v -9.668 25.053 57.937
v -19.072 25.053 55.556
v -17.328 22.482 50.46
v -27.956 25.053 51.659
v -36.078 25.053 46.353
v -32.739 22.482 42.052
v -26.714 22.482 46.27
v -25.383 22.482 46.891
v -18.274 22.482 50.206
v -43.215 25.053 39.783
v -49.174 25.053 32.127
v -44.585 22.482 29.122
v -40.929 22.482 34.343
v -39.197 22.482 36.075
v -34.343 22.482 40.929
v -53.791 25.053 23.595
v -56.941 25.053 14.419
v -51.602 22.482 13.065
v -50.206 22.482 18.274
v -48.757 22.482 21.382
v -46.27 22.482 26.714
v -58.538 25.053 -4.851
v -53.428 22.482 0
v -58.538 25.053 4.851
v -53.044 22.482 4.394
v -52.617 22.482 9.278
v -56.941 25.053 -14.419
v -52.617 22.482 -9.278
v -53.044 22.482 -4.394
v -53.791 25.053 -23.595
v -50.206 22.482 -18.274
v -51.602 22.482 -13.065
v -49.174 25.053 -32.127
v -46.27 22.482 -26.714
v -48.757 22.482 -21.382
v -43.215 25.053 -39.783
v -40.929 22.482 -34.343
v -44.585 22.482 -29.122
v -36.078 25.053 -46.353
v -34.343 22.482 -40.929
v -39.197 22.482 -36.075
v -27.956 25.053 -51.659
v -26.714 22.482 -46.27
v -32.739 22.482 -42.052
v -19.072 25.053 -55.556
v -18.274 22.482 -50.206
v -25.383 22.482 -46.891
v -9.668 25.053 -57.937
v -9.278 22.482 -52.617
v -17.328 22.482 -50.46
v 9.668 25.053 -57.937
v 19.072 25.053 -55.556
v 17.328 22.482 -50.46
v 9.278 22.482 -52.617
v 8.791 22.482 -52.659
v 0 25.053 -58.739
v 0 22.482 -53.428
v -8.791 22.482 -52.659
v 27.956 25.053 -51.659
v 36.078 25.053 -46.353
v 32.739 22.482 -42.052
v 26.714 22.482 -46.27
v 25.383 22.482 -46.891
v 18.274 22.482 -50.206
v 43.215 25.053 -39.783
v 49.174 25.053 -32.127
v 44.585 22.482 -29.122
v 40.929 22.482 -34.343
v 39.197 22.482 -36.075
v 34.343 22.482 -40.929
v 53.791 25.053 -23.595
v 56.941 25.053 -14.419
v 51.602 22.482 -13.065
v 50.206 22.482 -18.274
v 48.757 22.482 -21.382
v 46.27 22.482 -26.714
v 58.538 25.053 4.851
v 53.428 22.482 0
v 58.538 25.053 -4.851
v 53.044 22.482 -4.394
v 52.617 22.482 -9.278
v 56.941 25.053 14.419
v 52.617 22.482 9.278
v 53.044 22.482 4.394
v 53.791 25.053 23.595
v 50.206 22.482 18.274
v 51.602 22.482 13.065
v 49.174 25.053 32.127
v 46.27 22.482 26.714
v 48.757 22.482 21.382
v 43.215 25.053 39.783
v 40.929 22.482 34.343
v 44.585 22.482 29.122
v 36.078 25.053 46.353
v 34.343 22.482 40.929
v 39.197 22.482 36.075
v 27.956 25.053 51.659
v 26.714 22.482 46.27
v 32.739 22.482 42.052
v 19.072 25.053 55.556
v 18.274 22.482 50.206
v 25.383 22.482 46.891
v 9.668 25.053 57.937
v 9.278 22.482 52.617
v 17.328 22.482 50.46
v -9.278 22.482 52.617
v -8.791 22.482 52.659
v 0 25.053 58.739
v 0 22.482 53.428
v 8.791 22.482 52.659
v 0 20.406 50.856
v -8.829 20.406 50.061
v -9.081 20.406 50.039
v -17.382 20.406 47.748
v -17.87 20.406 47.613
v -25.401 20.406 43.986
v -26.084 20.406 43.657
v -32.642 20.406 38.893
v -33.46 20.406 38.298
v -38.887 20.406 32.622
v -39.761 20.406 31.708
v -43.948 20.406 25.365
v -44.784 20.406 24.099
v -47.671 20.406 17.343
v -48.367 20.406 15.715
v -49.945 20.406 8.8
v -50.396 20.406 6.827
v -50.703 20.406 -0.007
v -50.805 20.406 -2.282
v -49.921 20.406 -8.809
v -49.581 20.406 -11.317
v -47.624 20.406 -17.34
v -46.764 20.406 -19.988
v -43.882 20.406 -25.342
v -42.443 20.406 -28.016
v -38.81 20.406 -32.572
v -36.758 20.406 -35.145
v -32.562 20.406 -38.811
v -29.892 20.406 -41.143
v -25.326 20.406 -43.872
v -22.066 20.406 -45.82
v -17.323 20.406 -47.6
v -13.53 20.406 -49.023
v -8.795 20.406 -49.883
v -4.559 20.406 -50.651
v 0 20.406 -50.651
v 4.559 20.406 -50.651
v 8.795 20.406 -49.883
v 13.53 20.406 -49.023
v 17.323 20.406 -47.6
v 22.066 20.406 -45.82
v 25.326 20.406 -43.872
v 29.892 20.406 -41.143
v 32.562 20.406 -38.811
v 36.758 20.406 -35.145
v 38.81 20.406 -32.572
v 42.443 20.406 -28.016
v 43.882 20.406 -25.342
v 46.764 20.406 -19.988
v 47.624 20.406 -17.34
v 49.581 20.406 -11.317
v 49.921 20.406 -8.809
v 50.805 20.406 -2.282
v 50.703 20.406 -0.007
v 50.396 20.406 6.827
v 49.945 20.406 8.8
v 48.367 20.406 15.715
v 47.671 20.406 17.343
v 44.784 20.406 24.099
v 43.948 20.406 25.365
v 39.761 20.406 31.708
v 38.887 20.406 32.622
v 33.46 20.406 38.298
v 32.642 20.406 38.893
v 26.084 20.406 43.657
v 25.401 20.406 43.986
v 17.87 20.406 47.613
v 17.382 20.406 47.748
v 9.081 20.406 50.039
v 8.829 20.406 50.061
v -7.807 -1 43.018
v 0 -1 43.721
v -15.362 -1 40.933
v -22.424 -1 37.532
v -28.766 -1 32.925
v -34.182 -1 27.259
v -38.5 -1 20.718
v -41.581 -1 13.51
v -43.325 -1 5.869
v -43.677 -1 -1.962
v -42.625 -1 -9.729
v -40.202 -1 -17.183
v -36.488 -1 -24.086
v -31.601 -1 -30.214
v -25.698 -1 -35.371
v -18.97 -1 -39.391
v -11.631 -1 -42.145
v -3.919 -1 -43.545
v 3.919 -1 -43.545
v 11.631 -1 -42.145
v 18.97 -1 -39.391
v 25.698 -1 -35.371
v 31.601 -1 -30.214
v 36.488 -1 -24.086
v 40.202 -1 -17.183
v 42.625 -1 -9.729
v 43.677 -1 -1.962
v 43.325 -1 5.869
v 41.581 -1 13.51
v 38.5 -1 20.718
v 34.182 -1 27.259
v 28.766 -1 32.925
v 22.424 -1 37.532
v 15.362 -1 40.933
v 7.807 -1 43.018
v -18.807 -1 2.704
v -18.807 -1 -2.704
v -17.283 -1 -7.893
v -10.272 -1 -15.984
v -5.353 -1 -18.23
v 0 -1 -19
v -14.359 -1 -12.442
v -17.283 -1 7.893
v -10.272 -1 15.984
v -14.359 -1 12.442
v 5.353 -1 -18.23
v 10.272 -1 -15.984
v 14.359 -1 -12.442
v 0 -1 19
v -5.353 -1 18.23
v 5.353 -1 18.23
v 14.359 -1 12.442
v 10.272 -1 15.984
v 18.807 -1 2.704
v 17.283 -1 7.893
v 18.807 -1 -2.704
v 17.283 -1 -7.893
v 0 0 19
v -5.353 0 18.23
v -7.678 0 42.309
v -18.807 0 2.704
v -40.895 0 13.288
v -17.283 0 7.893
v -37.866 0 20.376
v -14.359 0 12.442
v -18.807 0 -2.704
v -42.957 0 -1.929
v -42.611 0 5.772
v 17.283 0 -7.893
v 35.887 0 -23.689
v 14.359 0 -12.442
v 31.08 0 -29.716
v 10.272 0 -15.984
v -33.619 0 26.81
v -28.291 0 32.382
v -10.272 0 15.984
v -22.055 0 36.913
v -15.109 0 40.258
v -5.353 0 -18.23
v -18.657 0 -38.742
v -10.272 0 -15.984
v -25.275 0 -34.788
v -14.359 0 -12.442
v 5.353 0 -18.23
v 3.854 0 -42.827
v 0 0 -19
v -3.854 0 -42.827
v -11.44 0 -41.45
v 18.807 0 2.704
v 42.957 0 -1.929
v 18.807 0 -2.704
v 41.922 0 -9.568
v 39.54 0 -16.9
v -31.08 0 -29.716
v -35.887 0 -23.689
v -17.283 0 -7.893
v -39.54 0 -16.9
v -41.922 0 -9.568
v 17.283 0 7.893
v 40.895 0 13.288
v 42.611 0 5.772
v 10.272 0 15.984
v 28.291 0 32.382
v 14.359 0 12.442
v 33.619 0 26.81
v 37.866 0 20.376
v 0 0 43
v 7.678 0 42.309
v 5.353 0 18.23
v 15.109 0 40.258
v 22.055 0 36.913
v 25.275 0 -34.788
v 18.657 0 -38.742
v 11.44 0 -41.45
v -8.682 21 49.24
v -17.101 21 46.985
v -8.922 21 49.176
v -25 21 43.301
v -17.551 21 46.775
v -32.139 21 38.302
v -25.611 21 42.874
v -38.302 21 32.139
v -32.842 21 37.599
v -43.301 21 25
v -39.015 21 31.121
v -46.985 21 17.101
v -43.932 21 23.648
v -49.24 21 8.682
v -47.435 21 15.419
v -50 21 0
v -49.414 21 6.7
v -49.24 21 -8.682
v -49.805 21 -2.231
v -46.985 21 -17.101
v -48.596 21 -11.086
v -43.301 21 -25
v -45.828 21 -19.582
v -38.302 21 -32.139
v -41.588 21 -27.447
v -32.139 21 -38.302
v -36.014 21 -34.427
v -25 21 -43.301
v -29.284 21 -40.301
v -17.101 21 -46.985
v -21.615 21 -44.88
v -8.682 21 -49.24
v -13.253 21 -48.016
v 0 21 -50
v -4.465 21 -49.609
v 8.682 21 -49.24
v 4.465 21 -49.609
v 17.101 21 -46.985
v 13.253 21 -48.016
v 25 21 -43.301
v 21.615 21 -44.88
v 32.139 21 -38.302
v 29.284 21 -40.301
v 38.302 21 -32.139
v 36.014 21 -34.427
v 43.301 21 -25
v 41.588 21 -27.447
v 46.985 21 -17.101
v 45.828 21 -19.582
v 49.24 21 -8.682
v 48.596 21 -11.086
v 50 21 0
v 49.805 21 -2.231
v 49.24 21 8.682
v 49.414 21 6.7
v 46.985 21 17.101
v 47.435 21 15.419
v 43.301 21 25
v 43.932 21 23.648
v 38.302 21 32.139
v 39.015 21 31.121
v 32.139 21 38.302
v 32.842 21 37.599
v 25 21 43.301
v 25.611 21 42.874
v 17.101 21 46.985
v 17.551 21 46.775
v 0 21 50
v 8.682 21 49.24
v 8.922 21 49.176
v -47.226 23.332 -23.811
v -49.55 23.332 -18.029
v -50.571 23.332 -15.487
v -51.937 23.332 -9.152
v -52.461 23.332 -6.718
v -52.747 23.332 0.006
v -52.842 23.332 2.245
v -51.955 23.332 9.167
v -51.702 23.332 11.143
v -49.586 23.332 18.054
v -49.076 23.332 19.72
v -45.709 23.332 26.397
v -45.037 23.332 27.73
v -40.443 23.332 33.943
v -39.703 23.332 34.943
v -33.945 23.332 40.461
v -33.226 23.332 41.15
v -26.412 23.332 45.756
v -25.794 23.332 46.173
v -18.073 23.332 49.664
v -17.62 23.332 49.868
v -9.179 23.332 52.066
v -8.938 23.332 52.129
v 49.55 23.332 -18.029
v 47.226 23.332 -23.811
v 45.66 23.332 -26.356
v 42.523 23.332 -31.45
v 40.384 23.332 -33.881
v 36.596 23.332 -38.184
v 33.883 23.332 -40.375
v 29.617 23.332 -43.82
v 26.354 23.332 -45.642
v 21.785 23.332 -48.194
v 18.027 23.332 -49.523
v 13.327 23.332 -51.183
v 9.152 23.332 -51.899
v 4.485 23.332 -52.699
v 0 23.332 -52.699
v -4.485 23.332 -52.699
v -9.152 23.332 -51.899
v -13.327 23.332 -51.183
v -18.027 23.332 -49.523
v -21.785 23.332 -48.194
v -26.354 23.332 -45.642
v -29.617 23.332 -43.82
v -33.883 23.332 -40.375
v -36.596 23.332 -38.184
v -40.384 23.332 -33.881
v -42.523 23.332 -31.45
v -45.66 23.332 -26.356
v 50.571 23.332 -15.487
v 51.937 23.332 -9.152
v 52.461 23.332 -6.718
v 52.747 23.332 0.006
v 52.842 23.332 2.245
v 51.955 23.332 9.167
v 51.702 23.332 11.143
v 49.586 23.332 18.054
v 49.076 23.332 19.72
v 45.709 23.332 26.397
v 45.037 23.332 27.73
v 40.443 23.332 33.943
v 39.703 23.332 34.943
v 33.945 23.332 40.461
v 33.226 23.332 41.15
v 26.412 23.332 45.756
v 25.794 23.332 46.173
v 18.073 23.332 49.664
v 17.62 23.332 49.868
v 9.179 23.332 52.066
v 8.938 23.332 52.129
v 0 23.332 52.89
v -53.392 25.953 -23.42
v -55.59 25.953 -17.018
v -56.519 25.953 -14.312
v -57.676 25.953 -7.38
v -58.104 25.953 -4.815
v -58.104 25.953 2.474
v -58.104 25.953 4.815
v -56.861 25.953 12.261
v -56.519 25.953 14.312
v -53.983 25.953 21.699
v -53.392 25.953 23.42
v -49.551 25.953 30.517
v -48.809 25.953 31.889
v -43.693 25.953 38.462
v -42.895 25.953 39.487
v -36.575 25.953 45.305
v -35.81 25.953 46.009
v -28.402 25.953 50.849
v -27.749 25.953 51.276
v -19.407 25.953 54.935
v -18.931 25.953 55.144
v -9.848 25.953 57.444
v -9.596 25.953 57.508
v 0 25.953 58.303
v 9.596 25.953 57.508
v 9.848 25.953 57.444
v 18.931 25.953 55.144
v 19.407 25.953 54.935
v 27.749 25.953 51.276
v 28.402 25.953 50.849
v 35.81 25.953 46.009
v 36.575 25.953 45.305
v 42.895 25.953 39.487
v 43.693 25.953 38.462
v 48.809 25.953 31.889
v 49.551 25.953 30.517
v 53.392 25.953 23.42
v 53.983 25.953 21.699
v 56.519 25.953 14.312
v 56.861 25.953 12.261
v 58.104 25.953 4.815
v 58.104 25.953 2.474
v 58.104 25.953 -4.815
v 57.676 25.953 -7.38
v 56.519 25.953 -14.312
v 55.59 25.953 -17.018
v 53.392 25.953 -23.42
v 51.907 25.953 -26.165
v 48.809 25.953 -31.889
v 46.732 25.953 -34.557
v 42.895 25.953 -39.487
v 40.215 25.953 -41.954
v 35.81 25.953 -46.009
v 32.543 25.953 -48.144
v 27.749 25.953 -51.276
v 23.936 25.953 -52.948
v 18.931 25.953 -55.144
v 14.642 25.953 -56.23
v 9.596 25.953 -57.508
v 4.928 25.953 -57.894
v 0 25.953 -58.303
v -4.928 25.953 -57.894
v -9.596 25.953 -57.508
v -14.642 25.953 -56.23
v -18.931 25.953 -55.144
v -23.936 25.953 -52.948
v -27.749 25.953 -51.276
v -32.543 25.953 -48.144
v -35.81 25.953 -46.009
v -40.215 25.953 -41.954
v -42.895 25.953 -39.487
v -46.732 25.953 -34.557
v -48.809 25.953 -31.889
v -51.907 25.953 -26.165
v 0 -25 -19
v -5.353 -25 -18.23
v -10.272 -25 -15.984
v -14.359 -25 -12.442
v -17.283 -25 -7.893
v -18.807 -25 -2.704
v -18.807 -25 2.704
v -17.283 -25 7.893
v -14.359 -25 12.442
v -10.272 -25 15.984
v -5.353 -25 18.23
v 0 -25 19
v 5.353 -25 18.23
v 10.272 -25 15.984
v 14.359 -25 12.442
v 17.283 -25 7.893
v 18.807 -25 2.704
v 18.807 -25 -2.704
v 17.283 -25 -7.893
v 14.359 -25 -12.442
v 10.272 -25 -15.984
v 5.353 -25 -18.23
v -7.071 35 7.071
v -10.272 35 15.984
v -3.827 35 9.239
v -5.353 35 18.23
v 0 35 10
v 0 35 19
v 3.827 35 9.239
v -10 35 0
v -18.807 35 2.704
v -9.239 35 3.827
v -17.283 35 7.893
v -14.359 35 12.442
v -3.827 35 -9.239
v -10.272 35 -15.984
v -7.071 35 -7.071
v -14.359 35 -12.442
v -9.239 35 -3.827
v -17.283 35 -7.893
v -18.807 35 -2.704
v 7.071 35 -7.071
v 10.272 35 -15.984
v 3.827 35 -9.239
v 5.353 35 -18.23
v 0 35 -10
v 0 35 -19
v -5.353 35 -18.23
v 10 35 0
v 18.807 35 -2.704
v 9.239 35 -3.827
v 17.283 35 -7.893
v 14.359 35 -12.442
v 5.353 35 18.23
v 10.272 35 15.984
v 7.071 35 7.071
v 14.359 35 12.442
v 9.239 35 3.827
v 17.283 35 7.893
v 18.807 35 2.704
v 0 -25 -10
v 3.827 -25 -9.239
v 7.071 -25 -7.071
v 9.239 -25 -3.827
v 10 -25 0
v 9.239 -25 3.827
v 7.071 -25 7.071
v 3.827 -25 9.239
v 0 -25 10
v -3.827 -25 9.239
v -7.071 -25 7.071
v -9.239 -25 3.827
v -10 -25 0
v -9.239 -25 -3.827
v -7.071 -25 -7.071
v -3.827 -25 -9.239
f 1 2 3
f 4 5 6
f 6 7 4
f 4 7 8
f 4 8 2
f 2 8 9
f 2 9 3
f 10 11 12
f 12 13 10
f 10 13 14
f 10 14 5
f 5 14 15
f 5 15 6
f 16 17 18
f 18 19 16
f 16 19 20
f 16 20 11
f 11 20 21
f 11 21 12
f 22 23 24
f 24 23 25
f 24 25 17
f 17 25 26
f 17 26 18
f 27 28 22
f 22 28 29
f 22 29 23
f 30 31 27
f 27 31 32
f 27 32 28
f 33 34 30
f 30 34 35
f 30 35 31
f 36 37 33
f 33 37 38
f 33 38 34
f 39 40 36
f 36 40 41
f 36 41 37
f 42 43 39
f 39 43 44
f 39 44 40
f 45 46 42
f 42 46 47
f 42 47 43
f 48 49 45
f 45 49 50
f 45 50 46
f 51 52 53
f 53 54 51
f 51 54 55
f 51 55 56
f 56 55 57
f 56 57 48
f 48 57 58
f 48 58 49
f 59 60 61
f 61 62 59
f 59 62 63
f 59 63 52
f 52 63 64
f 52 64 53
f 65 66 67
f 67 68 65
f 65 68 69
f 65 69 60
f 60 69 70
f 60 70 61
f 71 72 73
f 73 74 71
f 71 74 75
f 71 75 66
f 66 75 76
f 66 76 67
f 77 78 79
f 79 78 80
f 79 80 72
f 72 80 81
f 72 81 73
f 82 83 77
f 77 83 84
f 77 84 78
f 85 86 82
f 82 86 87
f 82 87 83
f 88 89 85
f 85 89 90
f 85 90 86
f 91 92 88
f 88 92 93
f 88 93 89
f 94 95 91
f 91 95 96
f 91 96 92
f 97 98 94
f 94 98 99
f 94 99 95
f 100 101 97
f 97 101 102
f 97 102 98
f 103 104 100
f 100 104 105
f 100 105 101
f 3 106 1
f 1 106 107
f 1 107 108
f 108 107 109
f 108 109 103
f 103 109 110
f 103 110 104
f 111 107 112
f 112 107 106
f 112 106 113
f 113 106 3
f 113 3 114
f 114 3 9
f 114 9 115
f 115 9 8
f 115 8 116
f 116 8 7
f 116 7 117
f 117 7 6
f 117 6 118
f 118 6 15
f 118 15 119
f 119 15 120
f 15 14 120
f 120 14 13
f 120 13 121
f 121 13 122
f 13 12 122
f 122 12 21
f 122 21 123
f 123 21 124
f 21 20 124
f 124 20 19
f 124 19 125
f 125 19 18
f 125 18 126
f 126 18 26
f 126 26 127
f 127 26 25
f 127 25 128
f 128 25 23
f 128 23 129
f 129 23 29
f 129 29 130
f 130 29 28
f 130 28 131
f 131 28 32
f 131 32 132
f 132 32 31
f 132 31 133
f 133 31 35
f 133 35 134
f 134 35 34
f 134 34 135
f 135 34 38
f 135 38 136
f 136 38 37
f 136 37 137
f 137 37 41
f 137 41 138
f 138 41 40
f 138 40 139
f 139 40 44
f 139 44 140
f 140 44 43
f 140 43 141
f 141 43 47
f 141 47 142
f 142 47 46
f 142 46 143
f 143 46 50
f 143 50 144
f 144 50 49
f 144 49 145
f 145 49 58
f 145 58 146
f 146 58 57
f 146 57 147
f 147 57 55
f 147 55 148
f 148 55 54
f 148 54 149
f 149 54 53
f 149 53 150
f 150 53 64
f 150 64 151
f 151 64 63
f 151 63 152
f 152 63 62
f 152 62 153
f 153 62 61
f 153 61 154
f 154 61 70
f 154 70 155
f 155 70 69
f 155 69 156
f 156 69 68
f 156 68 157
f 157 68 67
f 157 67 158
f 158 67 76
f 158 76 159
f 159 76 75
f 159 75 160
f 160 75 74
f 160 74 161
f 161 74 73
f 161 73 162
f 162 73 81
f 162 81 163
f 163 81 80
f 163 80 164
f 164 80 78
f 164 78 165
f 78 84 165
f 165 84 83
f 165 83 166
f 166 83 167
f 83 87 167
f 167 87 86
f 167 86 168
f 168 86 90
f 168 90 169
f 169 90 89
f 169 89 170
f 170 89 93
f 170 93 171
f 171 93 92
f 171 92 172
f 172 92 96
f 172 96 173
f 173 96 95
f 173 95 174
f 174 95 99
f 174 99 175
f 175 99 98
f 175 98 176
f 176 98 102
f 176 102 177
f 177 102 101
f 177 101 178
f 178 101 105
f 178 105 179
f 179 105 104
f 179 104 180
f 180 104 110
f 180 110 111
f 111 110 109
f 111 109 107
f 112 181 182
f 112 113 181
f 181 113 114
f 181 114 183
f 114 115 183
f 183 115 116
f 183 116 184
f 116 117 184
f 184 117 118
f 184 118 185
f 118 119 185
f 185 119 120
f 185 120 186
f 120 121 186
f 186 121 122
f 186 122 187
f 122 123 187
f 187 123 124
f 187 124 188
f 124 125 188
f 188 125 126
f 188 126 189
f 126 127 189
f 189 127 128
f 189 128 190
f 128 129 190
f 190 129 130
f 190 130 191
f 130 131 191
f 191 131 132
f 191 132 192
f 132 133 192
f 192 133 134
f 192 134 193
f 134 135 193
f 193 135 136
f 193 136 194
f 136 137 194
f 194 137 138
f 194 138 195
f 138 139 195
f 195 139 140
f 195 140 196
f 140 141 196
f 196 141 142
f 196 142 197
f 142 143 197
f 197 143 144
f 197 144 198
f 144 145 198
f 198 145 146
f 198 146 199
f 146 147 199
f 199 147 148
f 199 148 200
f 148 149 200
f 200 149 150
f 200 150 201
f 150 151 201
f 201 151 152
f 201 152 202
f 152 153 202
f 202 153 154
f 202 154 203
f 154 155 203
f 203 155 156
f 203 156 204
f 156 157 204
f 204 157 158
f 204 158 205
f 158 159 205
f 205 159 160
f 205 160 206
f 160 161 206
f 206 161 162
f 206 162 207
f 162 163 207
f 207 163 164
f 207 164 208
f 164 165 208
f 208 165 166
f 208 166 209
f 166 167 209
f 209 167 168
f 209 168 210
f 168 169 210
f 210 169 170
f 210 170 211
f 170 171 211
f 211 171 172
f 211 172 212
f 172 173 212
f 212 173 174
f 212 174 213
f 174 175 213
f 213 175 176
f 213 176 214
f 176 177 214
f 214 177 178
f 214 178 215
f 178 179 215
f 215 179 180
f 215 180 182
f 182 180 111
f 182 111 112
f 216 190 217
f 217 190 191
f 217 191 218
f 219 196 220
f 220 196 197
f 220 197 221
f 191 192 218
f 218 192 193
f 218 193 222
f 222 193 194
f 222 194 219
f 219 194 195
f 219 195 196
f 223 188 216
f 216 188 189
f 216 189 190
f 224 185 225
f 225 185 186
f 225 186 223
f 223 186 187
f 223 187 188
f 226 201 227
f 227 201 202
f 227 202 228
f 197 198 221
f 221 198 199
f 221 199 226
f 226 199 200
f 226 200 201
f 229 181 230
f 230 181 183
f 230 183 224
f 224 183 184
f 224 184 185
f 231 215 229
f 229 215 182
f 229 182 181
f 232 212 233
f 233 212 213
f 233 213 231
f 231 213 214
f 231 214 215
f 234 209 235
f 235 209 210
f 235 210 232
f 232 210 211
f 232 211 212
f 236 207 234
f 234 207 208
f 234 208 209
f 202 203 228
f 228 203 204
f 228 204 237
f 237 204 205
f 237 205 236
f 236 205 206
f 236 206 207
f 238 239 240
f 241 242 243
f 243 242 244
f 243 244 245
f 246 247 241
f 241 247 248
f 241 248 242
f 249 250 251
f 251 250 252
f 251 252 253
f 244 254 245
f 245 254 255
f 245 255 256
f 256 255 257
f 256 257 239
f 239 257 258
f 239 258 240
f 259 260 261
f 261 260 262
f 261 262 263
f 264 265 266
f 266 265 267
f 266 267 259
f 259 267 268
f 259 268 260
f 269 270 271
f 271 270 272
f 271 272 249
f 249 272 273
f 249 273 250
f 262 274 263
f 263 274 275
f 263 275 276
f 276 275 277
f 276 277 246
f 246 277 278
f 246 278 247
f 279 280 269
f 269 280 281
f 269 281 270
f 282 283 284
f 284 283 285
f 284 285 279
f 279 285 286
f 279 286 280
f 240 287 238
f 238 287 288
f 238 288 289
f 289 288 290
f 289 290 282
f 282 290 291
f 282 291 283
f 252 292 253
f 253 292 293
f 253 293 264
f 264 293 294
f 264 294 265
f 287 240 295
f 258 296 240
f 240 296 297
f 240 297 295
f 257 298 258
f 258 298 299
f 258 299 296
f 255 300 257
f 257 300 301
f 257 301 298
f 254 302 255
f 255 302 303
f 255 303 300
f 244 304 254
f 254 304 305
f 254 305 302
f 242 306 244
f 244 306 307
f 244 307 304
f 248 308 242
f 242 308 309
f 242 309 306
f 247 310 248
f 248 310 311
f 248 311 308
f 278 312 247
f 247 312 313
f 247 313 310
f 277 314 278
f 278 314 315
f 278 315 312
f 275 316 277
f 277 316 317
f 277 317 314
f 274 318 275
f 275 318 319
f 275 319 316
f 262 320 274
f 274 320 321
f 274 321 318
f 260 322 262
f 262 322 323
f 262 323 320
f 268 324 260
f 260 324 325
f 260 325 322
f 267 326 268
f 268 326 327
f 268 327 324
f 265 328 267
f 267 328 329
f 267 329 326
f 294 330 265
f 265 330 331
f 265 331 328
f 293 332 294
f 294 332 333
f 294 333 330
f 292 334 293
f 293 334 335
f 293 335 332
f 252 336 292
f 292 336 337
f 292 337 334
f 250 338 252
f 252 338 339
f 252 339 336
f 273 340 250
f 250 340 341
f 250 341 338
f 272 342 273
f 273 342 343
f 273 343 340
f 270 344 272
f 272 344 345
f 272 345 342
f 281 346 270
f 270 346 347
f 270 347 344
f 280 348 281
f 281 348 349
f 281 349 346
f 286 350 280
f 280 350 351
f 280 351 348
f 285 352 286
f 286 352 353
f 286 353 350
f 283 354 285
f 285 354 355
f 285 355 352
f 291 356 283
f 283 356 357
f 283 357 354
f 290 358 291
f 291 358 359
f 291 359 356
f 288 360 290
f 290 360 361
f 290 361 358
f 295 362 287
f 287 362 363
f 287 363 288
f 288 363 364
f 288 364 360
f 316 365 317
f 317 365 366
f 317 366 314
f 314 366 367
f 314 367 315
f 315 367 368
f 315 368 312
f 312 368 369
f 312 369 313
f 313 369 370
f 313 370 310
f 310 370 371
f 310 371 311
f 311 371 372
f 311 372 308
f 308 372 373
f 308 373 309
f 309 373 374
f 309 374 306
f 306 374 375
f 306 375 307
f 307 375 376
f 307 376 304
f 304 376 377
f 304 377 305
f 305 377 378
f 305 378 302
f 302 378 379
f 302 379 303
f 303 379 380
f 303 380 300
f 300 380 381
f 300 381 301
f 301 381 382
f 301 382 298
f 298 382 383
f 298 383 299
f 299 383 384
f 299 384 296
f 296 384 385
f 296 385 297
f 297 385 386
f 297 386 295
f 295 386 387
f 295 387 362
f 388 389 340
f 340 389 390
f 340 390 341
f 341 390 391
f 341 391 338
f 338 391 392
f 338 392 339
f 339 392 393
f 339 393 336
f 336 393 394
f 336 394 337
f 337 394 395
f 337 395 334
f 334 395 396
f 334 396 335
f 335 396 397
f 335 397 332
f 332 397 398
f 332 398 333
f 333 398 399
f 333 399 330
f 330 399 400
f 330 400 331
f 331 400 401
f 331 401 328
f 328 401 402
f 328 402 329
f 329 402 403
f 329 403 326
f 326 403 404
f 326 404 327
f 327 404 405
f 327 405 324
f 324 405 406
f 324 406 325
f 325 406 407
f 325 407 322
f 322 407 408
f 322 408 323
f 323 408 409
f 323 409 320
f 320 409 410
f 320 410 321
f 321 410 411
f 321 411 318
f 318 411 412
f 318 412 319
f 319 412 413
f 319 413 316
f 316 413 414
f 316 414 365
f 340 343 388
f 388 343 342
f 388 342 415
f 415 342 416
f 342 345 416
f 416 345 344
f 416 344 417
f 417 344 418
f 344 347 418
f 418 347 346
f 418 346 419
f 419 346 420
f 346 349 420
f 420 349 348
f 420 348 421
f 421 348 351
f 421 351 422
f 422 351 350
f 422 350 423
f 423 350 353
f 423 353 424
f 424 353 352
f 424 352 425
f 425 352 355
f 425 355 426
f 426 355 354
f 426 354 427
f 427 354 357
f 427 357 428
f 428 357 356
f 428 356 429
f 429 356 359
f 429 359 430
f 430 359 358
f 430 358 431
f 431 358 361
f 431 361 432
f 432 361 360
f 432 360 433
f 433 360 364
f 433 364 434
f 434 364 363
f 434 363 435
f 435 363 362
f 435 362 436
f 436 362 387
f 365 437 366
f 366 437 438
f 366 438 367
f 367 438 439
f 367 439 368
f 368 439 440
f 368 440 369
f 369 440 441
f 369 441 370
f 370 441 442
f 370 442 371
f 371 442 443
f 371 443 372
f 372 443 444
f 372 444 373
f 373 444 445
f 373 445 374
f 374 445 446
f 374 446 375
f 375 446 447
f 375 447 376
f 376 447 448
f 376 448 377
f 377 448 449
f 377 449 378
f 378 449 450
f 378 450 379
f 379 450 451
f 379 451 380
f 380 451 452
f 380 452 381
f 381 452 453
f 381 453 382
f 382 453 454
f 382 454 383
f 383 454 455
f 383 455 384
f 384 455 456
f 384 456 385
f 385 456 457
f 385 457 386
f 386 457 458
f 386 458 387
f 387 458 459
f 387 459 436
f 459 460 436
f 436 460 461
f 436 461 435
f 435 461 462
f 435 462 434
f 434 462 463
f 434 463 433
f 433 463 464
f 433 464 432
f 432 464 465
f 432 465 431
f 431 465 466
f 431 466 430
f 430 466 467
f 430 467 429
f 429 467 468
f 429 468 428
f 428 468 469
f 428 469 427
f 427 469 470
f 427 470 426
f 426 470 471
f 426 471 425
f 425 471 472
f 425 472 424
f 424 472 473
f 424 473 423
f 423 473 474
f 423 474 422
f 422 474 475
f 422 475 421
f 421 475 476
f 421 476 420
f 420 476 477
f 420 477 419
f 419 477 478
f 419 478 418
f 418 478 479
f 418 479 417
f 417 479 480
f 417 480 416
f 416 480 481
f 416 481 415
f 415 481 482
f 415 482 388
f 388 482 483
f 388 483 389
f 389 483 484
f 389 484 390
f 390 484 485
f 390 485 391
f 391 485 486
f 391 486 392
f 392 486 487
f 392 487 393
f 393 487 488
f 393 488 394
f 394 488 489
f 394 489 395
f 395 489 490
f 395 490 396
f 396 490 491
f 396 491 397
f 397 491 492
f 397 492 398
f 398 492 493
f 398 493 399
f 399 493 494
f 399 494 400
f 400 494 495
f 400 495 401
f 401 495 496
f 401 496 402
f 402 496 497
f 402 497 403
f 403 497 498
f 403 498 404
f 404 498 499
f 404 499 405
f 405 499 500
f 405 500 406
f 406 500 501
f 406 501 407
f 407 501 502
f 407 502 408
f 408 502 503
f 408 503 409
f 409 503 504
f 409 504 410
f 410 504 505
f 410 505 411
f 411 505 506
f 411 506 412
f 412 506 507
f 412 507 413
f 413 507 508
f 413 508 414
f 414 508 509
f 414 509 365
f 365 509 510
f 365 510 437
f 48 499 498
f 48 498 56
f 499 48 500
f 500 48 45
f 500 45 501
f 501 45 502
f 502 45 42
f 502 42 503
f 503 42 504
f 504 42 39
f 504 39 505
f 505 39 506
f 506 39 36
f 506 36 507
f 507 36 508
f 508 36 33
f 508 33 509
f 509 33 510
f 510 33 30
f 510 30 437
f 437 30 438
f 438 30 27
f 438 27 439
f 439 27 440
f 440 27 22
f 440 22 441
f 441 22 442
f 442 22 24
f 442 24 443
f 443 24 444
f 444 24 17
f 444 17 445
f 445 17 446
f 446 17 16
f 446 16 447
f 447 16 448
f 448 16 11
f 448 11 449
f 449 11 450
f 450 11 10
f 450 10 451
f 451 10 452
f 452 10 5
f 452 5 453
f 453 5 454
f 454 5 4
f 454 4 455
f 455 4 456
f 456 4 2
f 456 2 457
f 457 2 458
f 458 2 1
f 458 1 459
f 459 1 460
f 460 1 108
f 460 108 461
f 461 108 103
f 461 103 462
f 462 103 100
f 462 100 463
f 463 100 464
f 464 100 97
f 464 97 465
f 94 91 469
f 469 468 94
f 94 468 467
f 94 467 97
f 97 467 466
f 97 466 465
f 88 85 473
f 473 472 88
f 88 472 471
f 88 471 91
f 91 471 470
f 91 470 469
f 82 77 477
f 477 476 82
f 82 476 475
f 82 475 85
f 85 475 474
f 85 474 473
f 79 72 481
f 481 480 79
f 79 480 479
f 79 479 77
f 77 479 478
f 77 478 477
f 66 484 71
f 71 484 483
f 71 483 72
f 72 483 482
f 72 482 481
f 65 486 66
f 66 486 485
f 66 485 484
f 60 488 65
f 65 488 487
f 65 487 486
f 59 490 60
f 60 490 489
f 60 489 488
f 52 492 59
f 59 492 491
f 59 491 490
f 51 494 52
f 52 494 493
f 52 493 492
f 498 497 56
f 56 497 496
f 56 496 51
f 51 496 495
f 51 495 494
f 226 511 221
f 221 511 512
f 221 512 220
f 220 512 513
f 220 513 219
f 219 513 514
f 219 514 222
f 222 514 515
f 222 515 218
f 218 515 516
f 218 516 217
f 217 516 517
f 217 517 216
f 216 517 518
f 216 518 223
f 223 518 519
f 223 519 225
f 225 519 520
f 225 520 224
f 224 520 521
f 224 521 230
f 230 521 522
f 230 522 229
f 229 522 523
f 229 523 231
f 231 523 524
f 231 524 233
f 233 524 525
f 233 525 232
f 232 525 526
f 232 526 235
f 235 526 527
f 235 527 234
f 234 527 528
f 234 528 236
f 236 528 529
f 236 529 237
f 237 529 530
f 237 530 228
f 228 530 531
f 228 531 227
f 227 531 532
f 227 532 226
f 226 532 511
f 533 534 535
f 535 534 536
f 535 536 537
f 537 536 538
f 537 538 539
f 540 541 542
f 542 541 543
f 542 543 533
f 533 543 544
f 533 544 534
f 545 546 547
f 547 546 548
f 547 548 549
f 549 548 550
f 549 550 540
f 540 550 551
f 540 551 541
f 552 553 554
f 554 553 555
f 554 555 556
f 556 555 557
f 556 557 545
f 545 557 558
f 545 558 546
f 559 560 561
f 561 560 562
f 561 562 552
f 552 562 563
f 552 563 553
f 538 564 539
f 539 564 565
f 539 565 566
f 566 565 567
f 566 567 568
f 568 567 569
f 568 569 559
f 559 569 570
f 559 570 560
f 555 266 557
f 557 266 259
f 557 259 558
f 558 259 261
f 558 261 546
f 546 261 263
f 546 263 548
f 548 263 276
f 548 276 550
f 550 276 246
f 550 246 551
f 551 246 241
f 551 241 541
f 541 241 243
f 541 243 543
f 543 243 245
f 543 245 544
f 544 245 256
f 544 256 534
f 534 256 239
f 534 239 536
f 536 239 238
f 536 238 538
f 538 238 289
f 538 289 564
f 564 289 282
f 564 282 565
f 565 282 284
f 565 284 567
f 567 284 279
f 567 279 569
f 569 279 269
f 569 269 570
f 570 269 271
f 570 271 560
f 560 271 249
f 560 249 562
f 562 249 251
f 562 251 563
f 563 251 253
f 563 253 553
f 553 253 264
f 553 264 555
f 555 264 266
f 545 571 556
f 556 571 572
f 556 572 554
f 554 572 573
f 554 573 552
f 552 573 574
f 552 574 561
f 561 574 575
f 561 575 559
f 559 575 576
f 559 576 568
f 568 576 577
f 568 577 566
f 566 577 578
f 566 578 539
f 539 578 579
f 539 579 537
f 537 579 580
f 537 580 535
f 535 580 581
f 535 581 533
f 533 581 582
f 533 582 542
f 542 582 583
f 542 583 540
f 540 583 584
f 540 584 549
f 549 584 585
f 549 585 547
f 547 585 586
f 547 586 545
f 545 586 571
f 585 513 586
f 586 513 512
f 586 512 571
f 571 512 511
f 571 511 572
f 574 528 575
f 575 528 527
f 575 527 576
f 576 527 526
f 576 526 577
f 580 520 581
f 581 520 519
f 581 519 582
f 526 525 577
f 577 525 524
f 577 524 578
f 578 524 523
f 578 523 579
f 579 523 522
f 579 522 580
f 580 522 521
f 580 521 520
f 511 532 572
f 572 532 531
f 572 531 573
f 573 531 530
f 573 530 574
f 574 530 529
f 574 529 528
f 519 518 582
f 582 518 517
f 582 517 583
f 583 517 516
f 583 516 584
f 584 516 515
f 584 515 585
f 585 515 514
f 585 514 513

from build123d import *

# Parameters (mm, degrees)
EXTRUDE_10_DEPTH      = 35
EXTRUDE_10_DEPTH_BACK = 25
SKETCH_3_R            = 19
SKETCH_3_R_2          = 10


with BuildPart() as part:
    # Эскиз1 → Повернуть-Тонкостенный1 (revolve)
    with BuildSketch(Plane.XY, mode=Mode.PRIVATE) as revolve_1_sk:
        Polygon((19, 0), (43, 0), (50, 21), (52.889577147, 23.332201276), (58.302767501, 25.953006302), (58.738533119, 25.052946123), (53.42847461, 22.482072549), (50.856038751, 20.405838593), (43.72075922, -1), (19, -1), align=None)
    revolve(revolve_1_sk.sketch.rotate(Axis((0, 0, 0), (0, -1, 0)), 90), axis=Axis((0, 0, 0), (0, -1, 0)))

    # Эскиз3 → Вытянуть10 (add, two sides: drawn at the far end of the back side and taken through both)
    with BuildSketch(Plane(origin=(0, 0, 0), x_dir=(1, 0, 0), z_dir=(0, 1, 0)).offset(-EXTRUDE_10_DEPTH_BACK)):
        with Locations(Location((0, 0, 0), (0, 0, 270))):
            Circle(SKETCH_3_R)
        with Locations(Location((0, 0, 0), (0, 0, 270))):
            Circle(SKETCH_3_R_2, mode=Mode.SUBTRACT)
    extrude(amount=EXTRUDE_10_DEPTH + EXTRUDE_10_DEPTH_BACK)


solid = part.part
